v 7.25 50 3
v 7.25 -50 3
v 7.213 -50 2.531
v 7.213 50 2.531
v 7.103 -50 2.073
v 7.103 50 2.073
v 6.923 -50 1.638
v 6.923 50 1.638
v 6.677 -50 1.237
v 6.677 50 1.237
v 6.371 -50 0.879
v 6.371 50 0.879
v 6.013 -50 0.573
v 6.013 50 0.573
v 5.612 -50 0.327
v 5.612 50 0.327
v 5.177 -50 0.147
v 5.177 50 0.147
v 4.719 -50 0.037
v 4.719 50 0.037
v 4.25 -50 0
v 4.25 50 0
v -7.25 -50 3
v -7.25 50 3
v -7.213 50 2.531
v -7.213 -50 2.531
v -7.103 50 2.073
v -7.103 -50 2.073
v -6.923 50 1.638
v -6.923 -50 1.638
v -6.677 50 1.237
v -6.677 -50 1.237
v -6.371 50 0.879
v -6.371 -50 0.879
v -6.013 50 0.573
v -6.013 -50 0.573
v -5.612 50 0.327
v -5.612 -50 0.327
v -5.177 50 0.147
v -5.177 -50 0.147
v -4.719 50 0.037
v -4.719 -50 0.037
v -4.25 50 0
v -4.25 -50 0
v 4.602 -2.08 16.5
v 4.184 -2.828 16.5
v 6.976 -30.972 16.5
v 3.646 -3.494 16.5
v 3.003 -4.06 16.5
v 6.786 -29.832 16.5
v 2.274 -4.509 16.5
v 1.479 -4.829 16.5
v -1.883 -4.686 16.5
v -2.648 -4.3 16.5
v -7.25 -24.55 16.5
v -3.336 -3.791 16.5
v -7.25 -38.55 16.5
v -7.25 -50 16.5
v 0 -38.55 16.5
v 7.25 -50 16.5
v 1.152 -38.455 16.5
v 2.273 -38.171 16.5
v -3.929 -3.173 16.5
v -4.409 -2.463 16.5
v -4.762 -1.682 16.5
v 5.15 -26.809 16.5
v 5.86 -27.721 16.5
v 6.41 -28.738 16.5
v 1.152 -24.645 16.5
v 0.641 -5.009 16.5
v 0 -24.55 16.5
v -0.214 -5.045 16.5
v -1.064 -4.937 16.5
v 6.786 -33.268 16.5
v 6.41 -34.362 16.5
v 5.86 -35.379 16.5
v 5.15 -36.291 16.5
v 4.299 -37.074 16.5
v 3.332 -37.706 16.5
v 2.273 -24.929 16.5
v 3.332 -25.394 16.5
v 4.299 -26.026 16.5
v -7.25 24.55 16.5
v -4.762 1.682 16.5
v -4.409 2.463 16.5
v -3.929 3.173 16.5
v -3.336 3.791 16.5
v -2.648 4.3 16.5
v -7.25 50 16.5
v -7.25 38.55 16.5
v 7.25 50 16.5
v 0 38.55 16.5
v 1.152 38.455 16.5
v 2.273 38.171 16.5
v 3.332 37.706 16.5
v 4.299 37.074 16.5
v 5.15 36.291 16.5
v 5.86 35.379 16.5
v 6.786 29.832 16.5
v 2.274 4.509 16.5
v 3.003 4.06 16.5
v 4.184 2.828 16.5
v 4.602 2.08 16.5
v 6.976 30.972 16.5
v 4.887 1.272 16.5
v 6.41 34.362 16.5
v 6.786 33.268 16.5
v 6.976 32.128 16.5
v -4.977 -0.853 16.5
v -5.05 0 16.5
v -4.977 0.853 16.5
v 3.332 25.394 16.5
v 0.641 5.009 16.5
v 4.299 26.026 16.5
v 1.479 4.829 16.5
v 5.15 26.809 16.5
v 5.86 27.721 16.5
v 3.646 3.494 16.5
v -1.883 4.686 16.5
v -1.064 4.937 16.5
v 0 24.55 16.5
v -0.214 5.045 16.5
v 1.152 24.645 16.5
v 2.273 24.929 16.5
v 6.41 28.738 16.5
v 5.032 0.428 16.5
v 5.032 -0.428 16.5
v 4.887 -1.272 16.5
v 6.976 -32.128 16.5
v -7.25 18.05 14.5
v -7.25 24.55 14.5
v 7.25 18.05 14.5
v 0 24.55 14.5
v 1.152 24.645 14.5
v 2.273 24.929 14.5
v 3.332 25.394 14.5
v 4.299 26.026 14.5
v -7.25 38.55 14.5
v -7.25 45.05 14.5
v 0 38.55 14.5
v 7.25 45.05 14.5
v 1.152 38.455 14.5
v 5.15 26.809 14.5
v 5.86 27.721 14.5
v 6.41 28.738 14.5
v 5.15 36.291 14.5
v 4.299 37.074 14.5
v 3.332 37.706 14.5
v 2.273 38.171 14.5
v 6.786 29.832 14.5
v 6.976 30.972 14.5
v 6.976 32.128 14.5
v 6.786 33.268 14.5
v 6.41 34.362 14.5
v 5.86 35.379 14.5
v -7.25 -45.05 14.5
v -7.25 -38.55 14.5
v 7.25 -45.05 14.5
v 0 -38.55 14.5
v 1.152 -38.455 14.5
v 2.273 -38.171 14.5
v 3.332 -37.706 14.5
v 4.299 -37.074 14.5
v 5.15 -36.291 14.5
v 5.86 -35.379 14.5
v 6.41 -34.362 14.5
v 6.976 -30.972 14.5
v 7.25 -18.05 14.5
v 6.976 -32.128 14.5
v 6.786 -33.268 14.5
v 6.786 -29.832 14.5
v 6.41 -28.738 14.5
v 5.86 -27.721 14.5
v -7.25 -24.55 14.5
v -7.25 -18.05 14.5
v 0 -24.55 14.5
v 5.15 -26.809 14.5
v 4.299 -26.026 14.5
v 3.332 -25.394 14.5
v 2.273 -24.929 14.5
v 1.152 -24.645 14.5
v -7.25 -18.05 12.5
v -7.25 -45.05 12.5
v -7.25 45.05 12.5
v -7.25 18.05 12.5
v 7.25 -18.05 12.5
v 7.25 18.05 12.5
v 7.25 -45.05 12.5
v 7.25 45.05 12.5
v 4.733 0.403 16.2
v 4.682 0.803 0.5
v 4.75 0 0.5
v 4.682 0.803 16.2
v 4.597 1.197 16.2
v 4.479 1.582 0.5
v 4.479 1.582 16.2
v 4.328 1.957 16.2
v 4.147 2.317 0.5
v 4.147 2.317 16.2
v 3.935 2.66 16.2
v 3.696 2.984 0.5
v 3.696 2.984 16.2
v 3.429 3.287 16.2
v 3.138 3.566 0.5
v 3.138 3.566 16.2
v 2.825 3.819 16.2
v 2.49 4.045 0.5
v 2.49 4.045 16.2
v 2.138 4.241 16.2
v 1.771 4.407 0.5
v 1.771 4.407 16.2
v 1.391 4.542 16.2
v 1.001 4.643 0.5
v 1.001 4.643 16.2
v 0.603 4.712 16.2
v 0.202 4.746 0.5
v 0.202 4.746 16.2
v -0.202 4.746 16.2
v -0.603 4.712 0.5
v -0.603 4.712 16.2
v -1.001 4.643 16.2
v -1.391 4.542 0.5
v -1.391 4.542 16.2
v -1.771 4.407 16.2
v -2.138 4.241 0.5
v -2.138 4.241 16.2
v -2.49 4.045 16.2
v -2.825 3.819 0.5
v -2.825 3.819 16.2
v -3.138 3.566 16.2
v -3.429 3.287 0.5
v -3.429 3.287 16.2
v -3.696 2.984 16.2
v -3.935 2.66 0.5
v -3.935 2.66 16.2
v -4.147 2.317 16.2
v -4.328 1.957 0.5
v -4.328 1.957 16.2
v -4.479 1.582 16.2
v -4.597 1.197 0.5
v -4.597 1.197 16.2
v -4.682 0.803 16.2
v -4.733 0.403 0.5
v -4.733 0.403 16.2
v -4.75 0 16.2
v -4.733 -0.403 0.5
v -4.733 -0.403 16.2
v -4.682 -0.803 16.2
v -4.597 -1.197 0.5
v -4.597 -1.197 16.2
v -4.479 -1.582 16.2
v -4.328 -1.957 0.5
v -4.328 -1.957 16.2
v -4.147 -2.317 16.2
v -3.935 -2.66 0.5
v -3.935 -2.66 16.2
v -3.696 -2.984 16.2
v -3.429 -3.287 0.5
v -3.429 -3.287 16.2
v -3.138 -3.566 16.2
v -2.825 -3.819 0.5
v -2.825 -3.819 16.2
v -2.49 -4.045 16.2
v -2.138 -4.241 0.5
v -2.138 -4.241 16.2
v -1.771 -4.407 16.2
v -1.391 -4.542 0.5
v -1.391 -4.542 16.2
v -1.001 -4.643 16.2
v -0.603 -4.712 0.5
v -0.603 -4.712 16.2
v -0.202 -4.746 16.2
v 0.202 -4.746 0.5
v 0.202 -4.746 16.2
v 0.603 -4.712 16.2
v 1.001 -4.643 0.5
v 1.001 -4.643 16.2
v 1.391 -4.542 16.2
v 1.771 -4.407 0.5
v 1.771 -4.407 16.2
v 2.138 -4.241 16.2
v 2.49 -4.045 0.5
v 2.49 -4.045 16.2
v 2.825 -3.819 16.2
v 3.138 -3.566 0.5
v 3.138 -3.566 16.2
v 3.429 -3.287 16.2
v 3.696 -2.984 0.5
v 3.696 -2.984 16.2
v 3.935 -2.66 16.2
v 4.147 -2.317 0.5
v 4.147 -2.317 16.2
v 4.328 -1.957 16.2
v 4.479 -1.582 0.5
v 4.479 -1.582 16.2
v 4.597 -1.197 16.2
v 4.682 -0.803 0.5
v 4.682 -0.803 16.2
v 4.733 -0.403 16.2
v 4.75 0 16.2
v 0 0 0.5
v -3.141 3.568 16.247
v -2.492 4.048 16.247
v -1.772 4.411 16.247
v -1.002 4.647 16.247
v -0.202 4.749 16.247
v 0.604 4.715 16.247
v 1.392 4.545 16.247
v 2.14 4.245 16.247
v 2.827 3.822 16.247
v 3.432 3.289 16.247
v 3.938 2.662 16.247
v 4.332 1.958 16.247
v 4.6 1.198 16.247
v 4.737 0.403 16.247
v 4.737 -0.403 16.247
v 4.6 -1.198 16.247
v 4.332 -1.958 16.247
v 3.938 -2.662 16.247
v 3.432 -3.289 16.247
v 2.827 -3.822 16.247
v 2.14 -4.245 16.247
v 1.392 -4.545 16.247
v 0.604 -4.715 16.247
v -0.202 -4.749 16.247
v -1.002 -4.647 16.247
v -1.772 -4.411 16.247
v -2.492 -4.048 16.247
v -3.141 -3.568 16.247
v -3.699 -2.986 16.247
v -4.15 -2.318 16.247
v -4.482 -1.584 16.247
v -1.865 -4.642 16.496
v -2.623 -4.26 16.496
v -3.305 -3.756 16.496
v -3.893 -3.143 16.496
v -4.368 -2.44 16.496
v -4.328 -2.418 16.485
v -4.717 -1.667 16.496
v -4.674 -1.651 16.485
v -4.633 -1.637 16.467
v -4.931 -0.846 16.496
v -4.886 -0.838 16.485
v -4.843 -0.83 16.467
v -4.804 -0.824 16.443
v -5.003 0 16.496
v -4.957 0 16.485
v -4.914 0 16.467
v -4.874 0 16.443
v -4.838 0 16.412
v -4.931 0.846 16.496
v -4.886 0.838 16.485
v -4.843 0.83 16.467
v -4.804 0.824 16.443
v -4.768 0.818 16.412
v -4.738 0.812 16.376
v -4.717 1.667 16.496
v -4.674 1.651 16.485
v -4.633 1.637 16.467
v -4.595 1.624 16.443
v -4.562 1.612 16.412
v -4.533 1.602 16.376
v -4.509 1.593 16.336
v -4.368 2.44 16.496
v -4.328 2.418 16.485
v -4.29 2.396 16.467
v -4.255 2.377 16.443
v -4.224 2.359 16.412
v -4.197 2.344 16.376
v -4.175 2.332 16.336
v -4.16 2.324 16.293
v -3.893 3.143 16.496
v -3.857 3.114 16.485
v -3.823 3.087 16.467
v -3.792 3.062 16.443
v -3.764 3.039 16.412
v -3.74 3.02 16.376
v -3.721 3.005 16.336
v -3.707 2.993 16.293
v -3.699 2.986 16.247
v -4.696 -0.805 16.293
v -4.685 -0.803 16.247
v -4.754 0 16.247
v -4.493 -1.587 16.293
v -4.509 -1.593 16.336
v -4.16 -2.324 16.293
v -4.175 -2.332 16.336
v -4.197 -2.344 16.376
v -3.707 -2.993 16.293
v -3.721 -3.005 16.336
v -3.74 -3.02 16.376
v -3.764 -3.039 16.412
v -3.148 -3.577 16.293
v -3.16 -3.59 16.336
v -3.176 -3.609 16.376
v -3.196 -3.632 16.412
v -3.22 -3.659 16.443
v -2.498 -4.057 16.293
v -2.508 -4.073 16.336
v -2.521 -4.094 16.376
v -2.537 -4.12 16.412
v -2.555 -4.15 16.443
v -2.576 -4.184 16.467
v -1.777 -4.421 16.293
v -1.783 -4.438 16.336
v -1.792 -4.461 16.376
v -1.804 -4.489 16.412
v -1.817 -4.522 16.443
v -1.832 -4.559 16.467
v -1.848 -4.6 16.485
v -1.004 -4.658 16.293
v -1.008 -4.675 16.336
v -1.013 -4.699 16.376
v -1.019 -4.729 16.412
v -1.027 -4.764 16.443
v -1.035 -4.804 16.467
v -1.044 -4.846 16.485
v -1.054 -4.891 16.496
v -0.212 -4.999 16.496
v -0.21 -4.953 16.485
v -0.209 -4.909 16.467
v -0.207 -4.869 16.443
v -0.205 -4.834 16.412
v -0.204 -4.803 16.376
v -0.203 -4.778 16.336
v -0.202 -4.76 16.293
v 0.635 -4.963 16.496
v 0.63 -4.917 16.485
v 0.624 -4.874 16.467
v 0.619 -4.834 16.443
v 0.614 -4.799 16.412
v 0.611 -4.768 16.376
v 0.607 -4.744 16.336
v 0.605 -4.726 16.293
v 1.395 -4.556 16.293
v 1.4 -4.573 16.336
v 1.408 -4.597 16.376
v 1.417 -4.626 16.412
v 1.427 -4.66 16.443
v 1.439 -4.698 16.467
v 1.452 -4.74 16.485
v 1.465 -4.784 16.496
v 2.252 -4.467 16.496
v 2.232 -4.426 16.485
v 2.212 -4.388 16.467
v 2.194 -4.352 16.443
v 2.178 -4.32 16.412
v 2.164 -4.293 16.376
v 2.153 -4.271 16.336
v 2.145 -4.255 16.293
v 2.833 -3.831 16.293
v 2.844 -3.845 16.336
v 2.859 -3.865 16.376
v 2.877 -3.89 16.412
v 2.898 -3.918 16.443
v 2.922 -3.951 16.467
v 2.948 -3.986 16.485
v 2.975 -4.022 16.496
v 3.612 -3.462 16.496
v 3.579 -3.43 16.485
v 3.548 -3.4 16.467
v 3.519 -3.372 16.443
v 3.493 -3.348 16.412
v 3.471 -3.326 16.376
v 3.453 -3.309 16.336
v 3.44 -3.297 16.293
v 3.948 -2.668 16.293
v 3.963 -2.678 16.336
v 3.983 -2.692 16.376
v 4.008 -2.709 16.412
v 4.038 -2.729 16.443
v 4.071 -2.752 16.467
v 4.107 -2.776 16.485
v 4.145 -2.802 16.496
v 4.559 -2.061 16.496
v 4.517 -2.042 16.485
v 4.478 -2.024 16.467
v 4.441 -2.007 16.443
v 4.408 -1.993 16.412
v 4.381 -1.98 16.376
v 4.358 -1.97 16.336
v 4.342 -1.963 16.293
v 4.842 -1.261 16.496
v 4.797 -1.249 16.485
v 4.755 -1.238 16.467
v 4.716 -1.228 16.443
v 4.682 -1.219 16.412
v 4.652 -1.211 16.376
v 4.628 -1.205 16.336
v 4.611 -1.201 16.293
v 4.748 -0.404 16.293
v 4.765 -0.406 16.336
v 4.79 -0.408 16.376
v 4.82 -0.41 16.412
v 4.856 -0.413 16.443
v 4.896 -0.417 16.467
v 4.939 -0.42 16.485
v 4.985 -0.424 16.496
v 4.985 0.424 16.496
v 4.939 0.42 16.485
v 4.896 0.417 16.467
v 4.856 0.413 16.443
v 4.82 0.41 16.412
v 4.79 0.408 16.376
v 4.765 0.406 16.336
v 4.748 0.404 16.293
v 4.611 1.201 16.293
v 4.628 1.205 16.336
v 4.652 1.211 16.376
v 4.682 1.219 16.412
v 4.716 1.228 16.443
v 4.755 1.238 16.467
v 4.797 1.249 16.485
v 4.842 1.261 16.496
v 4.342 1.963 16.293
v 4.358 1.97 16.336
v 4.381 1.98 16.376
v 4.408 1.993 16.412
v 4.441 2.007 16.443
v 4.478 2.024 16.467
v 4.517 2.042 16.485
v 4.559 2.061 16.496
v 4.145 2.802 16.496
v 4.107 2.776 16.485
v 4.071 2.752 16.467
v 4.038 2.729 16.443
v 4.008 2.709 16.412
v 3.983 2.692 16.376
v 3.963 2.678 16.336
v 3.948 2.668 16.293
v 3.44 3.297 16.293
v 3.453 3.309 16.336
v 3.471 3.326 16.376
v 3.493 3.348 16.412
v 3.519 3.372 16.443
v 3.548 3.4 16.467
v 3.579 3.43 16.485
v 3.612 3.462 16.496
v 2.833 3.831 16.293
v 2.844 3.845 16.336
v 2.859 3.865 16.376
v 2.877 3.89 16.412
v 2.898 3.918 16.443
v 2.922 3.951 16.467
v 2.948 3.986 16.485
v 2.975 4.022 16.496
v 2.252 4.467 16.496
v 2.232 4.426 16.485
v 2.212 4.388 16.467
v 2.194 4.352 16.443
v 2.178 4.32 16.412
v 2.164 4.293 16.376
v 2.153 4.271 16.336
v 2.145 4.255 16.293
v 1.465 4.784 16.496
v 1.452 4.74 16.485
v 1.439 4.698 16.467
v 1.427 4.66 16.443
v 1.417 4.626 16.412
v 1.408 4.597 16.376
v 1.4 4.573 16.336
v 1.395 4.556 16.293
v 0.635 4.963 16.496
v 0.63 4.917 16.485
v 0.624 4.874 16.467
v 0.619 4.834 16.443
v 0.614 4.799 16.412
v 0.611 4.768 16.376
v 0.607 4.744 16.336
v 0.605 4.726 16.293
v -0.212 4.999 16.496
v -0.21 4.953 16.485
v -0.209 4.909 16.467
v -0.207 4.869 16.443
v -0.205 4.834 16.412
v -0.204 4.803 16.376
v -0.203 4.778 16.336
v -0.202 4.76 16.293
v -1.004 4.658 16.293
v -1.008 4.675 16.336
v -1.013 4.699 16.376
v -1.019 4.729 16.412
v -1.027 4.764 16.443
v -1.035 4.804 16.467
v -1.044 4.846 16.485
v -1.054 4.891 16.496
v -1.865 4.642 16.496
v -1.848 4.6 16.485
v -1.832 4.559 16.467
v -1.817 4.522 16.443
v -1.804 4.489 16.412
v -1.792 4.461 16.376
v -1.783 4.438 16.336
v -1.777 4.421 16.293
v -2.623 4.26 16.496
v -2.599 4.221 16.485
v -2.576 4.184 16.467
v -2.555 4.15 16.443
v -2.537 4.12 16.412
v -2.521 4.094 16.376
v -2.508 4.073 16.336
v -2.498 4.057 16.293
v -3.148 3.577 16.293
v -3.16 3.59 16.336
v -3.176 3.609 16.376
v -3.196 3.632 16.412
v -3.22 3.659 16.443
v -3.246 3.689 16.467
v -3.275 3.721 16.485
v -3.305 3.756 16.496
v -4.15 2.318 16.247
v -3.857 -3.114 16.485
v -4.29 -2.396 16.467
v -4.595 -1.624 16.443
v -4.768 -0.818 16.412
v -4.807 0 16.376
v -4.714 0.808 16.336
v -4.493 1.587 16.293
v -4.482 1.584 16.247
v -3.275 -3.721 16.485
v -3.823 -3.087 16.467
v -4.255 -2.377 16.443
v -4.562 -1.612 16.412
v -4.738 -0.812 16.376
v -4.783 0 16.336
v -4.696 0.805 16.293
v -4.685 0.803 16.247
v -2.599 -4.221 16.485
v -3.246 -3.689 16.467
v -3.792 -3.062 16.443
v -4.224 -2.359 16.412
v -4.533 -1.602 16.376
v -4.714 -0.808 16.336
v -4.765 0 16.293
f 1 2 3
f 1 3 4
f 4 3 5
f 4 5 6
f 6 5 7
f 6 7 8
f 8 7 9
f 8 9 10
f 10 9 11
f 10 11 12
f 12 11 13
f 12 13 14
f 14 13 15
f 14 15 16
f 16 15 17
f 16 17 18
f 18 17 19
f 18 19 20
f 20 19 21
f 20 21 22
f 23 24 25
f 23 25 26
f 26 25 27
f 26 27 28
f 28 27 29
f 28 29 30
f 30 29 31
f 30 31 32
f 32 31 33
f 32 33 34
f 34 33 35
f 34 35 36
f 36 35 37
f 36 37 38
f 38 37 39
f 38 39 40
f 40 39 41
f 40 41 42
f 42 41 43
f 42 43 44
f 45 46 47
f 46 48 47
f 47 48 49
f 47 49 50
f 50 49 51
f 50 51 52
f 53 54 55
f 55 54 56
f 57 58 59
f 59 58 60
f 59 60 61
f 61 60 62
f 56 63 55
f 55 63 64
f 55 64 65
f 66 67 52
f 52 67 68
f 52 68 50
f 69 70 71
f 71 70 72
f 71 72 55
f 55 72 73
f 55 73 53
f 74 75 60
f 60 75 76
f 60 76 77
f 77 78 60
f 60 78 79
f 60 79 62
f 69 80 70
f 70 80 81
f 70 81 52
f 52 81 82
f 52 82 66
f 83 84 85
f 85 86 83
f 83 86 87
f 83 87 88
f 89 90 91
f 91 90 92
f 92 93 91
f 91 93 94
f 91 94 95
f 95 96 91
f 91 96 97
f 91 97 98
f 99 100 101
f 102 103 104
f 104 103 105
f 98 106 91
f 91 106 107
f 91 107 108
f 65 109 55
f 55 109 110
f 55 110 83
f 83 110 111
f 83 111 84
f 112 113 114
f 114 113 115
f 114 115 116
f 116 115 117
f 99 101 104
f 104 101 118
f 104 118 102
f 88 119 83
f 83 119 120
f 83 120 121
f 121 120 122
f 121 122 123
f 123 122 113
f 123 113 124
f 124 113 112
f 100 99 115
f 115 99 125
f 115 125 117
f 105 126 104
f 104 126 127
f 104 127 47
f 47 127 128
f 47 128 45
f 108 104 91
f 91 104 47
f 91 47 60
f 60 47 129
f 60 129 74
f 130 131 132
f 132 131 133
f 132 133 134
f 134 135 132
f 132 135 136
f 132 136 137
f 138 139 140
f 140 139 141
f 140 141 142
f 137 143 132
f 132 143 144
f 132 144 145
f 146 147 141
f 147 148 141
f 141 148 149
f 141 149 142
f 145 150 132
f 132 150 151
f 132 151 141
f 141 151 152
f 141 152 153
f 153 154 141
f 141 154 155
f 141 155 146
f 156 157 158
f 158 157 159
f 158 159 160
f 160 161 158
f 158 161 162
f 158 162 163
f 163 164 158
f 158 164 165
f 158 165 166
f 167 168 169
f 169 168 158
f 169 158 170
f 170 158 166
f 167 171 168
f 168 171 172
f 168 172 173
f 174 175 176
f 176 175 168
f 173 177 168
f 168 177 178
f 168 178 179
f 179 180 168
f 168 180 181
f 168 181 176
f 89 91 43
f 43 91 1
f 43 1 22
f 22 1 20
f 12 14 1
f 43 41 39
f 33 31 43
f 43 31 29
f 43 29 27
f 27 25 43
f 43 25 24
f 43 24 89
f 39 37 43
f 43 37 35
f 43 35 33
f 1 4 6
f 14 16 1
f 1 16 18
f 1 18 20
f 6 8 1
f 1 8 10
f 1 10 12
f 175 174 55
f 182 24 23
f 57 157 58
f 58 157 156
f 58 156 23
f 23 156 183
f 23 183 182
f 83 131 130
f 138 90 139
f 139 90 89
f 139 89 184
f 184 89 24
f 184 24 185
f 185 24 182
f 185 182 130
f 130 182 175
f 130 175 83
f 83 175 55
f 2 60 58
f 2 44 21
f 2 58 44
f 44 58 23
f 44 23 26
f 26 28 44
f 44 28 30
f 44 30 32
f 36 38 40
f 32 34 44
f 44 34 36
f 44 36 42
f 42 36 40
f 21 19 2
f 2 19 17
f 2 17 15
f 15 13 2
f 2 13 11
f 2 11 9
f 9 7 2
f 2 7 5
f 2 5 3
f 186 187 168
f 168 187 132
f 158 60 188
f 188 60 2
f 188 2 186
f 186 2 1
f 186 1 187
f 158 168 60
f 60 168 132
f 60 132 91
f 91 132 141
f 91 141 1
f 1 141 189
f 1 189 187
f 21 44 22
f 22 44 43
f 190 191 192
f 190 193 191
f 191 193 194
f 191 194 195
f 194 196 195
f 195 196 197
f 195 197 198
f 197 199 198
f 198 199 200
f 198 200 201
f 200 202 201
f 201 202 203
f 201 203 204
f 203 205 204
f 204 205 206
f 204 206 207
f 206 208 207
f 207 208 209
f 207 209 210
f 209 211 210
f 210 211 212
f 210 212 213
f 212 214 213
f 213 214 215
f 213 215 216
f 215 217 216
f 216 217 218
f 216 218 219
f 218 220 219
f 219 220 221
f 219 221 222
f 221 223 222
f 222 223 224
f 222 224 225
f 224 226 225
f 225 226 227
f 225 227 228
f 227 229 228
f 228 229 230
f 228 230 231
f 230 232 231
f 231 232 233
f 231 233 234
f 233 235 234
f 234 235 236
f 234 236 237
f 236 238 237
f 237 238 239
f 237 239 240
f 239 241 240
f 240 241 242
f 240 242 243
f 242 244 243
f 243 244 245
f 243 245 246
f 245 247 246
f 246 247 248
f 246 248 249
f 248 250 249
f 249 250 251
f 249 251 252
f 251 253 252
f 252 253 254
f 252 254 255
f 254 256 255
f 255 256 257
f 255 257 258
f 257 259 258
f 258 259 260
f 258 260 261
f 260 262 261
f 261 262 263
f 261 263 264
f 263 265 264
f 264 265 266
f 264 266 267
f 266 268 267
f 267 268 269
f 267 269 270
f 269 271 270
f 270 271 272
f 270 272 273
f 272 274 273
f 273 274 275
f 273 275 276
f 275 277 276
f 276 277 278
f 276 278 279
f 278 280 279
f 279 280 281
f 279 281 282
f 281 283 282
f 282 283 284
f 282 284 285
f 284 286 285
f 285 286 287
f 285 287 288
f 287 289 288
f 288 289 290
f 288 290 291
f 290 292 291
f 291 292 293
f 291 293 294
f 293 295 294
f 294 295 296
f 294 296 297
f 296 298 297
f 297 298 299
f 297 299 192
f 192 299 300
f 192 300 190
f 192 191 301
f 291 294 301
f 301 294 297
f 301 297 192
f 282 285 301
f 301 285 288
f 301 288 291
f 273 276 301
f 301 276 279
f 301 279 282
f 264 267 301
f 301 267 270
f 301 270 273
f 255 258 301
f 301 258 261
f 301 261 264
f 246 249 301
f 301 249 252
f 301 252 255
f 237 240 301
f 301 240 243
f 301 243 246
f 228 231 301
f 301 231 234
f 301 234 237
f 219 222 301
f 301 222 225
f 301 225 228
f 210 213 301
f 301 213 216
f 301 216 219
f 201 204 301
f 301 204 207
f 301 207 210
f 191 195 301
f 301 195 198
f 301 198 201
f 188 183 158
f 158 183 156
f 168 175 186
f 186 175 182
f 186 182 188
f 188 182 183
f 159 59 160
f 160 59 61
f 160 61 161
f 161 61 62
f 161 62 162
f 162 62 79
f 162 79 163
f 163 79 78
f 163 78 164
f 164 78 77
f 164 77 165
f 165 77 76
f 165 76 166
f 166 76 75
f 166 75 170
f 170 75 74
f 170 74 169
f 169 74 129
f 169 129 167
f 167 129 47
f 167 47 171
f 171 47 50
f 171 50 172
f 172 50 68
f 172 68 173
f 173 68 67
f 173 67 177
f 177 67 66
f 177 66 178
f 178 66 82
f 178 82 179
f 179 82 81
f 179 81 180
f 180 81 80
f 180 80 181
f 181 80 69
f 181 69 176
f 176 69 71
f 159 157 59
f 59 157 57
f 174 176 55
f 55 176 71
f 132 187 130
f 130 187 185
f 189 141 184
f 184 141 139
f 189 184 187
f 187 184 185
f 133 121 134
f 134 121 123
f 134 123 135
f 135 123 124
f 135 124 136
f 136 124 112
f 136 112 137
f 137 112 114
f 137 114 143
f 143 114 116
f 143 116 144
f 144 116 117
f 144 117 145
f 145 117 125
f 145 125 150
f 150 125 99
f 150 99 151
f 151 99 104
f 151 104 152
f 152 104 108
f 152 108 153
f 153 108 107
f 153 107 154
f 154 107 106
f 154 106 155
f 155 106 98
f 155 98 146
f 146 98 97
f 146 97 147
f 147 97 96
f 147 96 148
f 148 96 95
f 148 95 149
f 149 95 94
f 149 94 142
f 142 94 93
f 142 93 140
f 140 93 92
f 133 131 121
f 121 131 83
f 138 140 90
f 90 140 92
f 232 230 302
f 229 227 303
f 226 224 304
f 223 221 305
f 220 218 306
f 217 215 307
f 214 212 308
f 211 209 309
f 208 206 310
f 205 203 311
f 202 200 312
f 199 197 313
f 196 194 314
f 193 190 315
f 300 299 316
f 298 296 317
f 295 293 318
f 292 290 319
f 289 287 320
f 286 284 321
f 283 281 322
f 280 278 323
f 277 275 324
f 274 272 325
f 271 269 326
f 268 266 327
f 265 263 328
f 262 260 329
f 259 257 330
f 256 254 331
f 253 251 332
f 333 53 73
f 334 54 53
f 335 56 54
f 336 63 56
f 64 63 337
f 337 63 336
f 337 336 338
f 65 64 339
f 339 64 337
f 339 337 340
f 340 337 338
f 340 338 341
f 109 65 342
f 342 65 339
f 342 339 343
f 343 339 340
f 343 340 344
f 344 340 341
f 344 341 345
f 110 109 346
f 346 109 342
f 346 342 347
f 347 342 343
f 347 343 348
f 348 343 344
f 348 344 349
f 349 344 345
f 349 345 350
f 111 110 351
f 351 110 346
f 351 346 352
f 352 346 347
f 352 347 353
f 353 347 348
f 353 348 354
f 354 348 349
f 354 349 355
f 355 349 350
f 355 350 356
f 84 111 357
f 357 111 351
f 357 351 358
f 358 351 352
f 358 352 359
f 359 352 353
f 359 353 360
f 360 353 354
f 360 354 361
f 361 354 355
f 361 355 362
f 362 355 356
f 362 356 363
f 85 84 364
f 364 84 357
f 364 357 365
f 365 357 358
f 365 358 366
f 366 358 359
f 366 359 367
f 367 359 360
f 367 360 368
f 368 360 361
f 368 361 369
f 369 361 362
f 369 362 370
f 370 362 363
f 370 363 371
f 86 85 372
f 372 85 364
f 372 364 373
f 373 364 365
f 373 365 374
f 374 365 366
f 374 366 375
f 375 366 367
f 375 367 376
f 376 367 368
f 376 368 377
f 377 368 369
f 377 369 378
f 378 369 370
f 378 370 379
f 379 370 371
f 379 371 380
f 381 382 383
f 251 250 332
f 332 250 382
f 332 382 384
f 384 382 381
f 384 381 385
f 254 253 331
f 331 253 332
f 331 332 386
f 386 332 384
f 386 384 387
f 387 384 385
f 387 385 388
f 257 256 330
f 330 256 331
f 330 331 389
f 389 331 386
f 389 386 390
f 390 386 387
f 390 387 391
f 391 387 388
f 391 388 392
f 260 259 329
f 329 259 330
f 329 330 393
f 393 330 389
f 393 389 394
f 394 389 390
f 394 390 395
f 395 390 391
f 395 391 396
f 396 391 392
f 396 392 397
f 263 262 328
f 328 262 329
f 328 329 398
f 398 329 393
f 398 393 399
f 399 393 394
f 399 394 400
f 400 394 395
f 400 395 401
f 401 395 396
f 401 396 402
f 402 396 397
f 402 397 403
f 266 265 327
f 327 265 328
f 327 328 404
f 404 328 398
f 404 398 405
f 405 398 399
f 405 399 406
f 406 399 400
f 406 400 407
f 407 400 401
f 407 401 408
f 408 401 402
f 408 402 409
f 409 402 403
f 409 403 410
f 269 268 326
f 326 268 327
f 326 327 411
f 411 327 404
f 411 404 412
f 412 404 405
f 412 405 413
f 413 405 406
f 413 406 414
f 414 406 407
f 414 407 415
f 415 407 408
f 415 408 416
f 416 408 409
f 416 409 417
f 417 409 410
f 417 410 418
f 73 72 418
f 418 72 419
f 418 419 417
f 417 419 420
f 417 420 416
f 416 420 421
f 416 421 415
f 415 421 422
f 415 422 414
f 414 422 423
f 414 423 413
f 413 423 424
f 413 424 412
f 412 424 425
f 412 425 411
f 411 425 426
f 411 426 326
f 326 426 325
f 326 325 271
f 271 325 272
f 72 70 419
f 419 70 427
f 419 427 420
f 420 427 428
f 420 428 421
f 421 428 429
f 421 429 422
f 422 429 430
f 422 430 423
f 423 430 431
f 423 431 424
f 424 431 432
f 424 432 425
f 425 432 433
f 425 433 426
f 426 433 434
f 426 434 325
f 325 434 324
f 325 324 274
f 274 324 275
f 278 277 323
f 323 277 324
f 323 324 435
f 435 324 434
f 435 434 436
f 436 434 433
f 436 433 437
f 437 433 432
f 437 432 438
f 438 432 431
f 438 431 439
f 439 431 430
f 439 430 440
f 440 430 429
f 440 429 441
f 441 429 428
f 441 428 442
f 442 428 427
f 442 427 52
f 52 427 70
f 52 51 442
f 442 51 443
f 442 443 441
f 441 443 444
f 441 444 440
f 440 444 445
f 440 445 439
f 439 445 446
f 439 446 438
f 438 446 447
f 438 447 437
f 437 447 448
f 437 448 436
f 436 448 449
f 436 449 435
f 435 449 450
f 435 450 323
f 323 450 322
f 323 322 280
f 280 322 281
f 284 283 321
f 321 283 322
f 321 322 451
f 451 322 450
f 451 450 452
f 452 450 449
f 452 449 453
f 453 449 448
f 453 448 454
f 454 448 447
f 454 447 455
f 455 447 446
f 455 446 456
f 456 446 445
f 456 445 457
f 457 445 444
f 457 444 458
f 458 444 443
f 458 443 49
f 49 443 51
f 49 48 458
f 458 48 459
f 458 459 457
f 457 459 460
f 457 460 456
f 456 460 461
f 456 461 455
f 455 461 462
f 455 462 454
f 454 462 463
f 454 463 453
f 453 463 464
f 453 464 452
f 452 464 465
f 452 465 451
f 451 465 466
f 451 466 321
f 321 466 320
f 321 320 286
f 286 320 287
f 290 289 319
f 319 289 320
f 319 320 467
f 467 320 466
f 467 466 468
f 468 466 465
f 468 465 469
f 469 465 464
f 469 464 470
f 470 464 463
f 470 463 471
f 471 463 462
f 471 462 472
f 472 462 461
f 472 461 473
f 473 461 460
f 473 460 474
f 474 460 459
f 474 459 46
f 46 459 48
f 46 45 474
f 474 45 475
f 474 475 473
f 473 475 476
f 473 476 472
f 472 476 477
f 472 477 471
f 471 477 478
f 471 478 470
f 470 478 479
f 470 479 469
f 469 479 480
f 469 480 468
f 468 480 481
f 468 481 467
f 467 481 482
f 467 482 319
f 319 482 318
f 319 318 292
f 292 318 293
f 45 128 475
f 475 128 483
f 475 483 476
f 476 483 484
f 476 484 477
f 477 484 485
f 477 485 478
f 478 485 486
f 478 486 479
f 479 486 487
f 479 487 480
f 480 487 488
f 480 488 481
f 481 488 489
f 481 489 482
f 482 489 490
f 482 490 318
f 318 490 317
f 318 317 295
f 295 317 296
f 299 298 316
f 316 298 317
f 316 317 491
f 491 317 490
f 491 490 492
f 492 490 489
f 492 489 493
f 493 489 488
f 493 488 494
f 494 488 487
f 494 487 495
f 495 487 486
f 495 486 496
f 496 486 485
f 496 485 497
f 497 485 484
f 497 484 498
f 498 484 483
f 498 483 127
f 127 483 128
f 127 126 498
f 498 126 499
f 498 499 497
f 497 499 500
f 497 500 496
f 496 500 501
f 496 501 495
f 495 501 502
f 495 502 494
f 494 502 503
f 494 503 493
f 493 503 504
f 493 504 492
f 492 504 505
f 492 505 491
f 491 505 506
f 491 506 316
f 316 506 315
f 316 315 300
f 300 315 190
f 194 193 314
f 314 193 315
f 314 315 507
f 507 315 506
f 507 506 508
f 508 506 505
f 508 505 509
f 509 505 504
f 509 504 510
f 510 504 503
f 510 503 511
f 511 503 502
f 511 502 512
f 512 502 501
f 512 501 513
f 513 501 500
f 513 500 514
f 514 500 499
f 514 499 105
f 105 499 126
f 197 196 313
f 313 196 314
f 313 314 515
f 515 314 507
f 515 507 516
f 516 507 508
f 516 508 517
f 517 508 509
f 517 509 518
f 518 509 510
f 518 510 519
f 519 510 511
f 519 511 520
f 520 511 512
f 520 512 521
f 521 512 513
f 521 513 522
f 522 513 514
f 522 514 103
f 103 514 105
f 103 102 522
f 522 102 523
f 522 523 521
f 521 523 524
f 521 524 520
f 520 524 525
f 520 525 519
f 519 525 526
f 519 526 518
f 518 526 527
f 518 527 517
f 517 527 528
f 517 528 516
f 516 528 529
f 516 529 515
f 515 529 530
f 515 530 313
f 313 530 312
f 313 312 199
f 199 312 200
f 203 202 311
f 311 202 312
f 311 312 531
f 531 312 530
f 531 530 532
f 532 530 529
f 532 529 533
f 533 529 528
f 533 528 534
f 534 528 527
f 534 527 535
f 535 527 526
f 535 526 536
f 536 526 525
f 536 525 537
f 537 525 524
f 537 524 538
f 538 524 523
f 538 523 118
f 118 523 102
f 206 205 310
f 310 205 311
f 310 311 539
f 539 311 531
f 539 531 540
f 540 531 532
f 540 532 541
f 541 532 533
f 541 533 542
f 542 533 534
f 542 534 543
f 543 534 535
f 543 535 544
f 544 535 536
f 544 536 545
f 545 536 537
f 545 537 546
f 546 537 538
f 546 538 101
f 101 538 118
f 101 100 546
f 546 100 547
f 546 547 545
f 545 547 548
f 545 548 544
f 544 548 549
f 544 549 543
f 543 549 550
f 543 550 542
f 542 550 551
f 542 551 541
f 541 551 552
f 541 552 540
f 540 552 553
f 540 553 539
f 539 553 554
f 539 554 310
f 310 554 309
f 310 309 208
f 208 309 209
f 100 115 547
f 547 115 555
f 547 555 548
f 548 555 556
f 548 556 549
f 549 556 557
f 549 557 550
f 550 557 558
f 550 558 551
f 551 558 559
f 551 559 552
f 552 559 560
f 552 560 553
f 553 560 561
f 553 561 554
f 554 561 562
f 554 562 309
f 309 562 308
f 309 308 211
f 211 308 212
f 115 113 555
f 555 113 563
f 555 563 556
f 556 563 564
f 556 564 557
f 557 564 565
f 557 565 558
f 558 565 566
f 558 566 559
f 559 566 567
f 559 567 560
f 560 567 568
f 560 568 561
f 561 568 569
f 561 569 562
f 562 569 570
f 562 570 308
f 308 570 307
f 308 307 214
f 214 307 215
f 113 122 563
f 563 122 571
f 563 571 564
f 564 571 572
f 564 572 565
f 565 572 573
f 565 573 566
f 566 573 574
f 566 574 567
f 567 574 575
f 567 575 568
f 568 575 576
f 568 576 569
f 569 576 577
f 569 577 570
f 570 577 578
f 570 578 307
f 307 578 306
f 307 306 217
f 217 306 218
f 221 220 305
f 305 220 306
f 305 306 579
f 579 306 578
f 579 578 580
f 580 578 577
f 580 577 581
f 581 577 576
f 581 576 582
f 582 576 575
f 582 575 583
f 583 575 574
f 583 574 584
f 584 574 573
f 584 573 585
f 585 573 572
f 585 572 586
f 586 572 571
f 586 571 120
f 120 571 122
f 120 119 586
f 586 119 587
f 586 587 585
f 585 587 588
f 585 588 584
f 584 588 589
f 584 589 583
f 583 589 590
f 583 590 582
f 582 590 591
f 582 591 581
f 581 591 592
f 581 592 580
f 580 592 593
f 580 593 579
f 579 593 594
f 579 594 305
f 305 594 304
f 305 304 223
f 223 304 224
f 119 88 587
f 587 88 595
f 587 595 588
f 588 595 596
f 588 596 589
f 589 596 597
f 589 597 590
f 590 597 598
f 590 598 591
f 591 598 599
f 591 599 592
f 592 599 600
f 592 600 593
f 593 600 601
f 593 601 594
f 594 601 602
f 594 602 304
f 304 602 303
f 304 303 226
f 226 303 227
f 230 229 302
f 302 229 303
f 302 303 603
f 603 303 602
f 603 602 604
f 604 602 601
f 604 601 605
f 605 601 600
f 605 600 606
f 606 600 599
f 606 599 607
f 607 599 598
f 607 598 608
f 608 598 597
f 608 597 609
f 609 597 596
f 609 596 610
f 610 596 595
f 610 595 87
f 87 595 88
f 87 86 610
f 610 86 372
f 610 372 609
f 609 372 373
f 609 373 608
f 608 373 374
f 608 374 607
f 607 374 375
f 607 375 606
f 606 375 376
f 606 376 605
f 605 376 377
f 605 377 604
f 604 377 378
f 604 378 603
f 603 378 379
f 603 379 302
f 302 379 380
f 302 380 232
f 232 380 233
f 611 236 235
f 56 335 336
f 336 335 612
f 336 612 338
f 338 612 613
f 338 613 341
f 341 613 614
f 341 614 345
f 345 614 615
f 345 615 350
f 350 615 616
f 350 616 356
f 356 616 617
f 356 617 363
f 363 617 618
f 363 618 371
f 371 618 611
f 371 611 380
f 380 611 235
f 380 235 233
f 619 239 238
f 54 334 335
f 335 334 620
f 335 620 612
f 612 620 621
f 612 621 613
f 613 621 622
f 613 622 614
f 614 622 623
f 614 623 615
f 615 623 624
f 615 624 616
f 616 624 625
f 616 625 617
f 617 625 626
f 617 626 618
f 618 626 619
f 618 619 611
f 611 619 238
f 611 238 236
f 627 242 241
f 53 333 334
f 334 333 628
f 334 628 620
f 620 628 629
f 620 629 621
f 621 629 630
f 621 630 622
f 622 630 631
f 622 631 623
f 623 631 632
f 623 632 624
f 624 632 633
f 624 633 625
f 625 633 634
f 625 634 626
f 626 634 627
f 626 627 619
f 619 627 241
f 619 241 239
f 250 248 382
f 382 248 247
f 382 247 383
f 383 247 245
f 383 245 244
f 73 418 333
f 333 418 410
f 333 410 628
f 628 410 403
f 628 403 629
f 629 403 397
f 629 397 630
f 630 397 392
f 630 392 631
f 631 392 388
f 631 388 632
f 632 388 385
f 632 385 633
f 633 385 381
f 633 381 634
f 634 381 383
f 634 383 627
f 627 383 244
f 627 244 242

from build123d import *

# Parameters (mm, degrees)
SKETCH7_W           = 100
SKETCH7_H           = 14.5
BOSS_EXTRUDE1_DEPTH = 16.5
SKETCH8_R           = 4.75
CUT_EXTRUDE2_DEPTH  = 16
CUT_EXTRUDE3_START  = -2
SKETCH9_W           = 27
SKETCH9_H           = 27
CUT_EXTRUDE3_DEPTH  = 2
CUT_EXTRUDE4_DEPTH  = 2
FILLET1_R           = 3
FILLET2_R           = 3
FILLET3_R           = 0.3


with BuildPart() as part:
    # Sketch7 → Boss-Extrude1 (new body)
    with BuildSketch(Plane(origin=(0, 0, 0), x_dir=(0, 1, 0), z_dir=(0, 0, 1))):
        Rectangle(SKETCH7_W, SKETCH7_H)
    extrude(amount=BOSS_EXTRUDE1_DEPTH)

    # Sketch8 → Cut-Extrude2 (cut)
    with BuildSketch(Plane(origin=(0, 0, 16.5), x_dir=(0, -1, 0), z_dir=(0, 0, 1))):
        with Locations(Location((0, 0, 0), (0, 0, 90))):
            Circle(SKETCH8_R)
    extrude(amount=-CUT_EXTRUDE2_DEPTH, mode=Mode.SUBTRACT)

    # Sketch9 → Cut-Extrude3 (cut)
    with BuildSketch(Plane.XY.offset(16.5).offset(CUT_EXTRUDE3_START)):
        with Locations((0, -31.55)):
            Rectangle(SKETCH9_W, SKETCH9_H)
    cut_extrude3 = extrude(amount=-CUT_EXTRUDE3_DEPTH, mode=Mode.SUBTRACT)

    # Sketch10 → Cut-Extrude4 (cut)
    with BuildSketch(Plane.XY.offset(16.5)):
        with BuildLine():
            Line((0, -24.55), (-7.25, -24.55))
            Line((-7.25, -24.55), (-7.25, -38.55))
            Line((-7.25, -38.55), (0, -38.55))
            ThreePointArc((0, -38.55), (7, -31.55), (0, -24.55))
        make_face()
    cut_extrude4 = extrude(amount=-CUT_EXTRUDE4_DEPTH, mode=Mode.SUBTRACT)

    # Mirror1: Cut-Extrude3 across plane
    add(cut_extrude3.mirror(Plane.ZX), mode=Mode.SUBTRACT)

    # Mirror2: Cut-Extrude4 across plane
    add(cut_extrude4.mirror(Plane.ZX), mode=Mode.SUBTRACT)

    # Fillet1
    fillet1_edges = [part.edges().sort_by_distance(p)[0] for p in [
        (-7.25, 0, 0),
    ]]
    fillet(fillet1_edges, radius=FILLET1_R)

    # Fillet2
    fillet2_edges = [part.edges().sort_by_distance(p)[0] for p in [
        (7.25, 0, 0),
    ]]
    fillet(fillet2_edges, radius=FILLET2_R)

    # Fillet3
    fillet3_edges = [part.edges().sort_by_distance(p)[0] for p in [
        (-4.75, 0, 16.5),
    ]]
    fillet(fillet3_edges, radius=FILLET3_R)


solid = part.part
